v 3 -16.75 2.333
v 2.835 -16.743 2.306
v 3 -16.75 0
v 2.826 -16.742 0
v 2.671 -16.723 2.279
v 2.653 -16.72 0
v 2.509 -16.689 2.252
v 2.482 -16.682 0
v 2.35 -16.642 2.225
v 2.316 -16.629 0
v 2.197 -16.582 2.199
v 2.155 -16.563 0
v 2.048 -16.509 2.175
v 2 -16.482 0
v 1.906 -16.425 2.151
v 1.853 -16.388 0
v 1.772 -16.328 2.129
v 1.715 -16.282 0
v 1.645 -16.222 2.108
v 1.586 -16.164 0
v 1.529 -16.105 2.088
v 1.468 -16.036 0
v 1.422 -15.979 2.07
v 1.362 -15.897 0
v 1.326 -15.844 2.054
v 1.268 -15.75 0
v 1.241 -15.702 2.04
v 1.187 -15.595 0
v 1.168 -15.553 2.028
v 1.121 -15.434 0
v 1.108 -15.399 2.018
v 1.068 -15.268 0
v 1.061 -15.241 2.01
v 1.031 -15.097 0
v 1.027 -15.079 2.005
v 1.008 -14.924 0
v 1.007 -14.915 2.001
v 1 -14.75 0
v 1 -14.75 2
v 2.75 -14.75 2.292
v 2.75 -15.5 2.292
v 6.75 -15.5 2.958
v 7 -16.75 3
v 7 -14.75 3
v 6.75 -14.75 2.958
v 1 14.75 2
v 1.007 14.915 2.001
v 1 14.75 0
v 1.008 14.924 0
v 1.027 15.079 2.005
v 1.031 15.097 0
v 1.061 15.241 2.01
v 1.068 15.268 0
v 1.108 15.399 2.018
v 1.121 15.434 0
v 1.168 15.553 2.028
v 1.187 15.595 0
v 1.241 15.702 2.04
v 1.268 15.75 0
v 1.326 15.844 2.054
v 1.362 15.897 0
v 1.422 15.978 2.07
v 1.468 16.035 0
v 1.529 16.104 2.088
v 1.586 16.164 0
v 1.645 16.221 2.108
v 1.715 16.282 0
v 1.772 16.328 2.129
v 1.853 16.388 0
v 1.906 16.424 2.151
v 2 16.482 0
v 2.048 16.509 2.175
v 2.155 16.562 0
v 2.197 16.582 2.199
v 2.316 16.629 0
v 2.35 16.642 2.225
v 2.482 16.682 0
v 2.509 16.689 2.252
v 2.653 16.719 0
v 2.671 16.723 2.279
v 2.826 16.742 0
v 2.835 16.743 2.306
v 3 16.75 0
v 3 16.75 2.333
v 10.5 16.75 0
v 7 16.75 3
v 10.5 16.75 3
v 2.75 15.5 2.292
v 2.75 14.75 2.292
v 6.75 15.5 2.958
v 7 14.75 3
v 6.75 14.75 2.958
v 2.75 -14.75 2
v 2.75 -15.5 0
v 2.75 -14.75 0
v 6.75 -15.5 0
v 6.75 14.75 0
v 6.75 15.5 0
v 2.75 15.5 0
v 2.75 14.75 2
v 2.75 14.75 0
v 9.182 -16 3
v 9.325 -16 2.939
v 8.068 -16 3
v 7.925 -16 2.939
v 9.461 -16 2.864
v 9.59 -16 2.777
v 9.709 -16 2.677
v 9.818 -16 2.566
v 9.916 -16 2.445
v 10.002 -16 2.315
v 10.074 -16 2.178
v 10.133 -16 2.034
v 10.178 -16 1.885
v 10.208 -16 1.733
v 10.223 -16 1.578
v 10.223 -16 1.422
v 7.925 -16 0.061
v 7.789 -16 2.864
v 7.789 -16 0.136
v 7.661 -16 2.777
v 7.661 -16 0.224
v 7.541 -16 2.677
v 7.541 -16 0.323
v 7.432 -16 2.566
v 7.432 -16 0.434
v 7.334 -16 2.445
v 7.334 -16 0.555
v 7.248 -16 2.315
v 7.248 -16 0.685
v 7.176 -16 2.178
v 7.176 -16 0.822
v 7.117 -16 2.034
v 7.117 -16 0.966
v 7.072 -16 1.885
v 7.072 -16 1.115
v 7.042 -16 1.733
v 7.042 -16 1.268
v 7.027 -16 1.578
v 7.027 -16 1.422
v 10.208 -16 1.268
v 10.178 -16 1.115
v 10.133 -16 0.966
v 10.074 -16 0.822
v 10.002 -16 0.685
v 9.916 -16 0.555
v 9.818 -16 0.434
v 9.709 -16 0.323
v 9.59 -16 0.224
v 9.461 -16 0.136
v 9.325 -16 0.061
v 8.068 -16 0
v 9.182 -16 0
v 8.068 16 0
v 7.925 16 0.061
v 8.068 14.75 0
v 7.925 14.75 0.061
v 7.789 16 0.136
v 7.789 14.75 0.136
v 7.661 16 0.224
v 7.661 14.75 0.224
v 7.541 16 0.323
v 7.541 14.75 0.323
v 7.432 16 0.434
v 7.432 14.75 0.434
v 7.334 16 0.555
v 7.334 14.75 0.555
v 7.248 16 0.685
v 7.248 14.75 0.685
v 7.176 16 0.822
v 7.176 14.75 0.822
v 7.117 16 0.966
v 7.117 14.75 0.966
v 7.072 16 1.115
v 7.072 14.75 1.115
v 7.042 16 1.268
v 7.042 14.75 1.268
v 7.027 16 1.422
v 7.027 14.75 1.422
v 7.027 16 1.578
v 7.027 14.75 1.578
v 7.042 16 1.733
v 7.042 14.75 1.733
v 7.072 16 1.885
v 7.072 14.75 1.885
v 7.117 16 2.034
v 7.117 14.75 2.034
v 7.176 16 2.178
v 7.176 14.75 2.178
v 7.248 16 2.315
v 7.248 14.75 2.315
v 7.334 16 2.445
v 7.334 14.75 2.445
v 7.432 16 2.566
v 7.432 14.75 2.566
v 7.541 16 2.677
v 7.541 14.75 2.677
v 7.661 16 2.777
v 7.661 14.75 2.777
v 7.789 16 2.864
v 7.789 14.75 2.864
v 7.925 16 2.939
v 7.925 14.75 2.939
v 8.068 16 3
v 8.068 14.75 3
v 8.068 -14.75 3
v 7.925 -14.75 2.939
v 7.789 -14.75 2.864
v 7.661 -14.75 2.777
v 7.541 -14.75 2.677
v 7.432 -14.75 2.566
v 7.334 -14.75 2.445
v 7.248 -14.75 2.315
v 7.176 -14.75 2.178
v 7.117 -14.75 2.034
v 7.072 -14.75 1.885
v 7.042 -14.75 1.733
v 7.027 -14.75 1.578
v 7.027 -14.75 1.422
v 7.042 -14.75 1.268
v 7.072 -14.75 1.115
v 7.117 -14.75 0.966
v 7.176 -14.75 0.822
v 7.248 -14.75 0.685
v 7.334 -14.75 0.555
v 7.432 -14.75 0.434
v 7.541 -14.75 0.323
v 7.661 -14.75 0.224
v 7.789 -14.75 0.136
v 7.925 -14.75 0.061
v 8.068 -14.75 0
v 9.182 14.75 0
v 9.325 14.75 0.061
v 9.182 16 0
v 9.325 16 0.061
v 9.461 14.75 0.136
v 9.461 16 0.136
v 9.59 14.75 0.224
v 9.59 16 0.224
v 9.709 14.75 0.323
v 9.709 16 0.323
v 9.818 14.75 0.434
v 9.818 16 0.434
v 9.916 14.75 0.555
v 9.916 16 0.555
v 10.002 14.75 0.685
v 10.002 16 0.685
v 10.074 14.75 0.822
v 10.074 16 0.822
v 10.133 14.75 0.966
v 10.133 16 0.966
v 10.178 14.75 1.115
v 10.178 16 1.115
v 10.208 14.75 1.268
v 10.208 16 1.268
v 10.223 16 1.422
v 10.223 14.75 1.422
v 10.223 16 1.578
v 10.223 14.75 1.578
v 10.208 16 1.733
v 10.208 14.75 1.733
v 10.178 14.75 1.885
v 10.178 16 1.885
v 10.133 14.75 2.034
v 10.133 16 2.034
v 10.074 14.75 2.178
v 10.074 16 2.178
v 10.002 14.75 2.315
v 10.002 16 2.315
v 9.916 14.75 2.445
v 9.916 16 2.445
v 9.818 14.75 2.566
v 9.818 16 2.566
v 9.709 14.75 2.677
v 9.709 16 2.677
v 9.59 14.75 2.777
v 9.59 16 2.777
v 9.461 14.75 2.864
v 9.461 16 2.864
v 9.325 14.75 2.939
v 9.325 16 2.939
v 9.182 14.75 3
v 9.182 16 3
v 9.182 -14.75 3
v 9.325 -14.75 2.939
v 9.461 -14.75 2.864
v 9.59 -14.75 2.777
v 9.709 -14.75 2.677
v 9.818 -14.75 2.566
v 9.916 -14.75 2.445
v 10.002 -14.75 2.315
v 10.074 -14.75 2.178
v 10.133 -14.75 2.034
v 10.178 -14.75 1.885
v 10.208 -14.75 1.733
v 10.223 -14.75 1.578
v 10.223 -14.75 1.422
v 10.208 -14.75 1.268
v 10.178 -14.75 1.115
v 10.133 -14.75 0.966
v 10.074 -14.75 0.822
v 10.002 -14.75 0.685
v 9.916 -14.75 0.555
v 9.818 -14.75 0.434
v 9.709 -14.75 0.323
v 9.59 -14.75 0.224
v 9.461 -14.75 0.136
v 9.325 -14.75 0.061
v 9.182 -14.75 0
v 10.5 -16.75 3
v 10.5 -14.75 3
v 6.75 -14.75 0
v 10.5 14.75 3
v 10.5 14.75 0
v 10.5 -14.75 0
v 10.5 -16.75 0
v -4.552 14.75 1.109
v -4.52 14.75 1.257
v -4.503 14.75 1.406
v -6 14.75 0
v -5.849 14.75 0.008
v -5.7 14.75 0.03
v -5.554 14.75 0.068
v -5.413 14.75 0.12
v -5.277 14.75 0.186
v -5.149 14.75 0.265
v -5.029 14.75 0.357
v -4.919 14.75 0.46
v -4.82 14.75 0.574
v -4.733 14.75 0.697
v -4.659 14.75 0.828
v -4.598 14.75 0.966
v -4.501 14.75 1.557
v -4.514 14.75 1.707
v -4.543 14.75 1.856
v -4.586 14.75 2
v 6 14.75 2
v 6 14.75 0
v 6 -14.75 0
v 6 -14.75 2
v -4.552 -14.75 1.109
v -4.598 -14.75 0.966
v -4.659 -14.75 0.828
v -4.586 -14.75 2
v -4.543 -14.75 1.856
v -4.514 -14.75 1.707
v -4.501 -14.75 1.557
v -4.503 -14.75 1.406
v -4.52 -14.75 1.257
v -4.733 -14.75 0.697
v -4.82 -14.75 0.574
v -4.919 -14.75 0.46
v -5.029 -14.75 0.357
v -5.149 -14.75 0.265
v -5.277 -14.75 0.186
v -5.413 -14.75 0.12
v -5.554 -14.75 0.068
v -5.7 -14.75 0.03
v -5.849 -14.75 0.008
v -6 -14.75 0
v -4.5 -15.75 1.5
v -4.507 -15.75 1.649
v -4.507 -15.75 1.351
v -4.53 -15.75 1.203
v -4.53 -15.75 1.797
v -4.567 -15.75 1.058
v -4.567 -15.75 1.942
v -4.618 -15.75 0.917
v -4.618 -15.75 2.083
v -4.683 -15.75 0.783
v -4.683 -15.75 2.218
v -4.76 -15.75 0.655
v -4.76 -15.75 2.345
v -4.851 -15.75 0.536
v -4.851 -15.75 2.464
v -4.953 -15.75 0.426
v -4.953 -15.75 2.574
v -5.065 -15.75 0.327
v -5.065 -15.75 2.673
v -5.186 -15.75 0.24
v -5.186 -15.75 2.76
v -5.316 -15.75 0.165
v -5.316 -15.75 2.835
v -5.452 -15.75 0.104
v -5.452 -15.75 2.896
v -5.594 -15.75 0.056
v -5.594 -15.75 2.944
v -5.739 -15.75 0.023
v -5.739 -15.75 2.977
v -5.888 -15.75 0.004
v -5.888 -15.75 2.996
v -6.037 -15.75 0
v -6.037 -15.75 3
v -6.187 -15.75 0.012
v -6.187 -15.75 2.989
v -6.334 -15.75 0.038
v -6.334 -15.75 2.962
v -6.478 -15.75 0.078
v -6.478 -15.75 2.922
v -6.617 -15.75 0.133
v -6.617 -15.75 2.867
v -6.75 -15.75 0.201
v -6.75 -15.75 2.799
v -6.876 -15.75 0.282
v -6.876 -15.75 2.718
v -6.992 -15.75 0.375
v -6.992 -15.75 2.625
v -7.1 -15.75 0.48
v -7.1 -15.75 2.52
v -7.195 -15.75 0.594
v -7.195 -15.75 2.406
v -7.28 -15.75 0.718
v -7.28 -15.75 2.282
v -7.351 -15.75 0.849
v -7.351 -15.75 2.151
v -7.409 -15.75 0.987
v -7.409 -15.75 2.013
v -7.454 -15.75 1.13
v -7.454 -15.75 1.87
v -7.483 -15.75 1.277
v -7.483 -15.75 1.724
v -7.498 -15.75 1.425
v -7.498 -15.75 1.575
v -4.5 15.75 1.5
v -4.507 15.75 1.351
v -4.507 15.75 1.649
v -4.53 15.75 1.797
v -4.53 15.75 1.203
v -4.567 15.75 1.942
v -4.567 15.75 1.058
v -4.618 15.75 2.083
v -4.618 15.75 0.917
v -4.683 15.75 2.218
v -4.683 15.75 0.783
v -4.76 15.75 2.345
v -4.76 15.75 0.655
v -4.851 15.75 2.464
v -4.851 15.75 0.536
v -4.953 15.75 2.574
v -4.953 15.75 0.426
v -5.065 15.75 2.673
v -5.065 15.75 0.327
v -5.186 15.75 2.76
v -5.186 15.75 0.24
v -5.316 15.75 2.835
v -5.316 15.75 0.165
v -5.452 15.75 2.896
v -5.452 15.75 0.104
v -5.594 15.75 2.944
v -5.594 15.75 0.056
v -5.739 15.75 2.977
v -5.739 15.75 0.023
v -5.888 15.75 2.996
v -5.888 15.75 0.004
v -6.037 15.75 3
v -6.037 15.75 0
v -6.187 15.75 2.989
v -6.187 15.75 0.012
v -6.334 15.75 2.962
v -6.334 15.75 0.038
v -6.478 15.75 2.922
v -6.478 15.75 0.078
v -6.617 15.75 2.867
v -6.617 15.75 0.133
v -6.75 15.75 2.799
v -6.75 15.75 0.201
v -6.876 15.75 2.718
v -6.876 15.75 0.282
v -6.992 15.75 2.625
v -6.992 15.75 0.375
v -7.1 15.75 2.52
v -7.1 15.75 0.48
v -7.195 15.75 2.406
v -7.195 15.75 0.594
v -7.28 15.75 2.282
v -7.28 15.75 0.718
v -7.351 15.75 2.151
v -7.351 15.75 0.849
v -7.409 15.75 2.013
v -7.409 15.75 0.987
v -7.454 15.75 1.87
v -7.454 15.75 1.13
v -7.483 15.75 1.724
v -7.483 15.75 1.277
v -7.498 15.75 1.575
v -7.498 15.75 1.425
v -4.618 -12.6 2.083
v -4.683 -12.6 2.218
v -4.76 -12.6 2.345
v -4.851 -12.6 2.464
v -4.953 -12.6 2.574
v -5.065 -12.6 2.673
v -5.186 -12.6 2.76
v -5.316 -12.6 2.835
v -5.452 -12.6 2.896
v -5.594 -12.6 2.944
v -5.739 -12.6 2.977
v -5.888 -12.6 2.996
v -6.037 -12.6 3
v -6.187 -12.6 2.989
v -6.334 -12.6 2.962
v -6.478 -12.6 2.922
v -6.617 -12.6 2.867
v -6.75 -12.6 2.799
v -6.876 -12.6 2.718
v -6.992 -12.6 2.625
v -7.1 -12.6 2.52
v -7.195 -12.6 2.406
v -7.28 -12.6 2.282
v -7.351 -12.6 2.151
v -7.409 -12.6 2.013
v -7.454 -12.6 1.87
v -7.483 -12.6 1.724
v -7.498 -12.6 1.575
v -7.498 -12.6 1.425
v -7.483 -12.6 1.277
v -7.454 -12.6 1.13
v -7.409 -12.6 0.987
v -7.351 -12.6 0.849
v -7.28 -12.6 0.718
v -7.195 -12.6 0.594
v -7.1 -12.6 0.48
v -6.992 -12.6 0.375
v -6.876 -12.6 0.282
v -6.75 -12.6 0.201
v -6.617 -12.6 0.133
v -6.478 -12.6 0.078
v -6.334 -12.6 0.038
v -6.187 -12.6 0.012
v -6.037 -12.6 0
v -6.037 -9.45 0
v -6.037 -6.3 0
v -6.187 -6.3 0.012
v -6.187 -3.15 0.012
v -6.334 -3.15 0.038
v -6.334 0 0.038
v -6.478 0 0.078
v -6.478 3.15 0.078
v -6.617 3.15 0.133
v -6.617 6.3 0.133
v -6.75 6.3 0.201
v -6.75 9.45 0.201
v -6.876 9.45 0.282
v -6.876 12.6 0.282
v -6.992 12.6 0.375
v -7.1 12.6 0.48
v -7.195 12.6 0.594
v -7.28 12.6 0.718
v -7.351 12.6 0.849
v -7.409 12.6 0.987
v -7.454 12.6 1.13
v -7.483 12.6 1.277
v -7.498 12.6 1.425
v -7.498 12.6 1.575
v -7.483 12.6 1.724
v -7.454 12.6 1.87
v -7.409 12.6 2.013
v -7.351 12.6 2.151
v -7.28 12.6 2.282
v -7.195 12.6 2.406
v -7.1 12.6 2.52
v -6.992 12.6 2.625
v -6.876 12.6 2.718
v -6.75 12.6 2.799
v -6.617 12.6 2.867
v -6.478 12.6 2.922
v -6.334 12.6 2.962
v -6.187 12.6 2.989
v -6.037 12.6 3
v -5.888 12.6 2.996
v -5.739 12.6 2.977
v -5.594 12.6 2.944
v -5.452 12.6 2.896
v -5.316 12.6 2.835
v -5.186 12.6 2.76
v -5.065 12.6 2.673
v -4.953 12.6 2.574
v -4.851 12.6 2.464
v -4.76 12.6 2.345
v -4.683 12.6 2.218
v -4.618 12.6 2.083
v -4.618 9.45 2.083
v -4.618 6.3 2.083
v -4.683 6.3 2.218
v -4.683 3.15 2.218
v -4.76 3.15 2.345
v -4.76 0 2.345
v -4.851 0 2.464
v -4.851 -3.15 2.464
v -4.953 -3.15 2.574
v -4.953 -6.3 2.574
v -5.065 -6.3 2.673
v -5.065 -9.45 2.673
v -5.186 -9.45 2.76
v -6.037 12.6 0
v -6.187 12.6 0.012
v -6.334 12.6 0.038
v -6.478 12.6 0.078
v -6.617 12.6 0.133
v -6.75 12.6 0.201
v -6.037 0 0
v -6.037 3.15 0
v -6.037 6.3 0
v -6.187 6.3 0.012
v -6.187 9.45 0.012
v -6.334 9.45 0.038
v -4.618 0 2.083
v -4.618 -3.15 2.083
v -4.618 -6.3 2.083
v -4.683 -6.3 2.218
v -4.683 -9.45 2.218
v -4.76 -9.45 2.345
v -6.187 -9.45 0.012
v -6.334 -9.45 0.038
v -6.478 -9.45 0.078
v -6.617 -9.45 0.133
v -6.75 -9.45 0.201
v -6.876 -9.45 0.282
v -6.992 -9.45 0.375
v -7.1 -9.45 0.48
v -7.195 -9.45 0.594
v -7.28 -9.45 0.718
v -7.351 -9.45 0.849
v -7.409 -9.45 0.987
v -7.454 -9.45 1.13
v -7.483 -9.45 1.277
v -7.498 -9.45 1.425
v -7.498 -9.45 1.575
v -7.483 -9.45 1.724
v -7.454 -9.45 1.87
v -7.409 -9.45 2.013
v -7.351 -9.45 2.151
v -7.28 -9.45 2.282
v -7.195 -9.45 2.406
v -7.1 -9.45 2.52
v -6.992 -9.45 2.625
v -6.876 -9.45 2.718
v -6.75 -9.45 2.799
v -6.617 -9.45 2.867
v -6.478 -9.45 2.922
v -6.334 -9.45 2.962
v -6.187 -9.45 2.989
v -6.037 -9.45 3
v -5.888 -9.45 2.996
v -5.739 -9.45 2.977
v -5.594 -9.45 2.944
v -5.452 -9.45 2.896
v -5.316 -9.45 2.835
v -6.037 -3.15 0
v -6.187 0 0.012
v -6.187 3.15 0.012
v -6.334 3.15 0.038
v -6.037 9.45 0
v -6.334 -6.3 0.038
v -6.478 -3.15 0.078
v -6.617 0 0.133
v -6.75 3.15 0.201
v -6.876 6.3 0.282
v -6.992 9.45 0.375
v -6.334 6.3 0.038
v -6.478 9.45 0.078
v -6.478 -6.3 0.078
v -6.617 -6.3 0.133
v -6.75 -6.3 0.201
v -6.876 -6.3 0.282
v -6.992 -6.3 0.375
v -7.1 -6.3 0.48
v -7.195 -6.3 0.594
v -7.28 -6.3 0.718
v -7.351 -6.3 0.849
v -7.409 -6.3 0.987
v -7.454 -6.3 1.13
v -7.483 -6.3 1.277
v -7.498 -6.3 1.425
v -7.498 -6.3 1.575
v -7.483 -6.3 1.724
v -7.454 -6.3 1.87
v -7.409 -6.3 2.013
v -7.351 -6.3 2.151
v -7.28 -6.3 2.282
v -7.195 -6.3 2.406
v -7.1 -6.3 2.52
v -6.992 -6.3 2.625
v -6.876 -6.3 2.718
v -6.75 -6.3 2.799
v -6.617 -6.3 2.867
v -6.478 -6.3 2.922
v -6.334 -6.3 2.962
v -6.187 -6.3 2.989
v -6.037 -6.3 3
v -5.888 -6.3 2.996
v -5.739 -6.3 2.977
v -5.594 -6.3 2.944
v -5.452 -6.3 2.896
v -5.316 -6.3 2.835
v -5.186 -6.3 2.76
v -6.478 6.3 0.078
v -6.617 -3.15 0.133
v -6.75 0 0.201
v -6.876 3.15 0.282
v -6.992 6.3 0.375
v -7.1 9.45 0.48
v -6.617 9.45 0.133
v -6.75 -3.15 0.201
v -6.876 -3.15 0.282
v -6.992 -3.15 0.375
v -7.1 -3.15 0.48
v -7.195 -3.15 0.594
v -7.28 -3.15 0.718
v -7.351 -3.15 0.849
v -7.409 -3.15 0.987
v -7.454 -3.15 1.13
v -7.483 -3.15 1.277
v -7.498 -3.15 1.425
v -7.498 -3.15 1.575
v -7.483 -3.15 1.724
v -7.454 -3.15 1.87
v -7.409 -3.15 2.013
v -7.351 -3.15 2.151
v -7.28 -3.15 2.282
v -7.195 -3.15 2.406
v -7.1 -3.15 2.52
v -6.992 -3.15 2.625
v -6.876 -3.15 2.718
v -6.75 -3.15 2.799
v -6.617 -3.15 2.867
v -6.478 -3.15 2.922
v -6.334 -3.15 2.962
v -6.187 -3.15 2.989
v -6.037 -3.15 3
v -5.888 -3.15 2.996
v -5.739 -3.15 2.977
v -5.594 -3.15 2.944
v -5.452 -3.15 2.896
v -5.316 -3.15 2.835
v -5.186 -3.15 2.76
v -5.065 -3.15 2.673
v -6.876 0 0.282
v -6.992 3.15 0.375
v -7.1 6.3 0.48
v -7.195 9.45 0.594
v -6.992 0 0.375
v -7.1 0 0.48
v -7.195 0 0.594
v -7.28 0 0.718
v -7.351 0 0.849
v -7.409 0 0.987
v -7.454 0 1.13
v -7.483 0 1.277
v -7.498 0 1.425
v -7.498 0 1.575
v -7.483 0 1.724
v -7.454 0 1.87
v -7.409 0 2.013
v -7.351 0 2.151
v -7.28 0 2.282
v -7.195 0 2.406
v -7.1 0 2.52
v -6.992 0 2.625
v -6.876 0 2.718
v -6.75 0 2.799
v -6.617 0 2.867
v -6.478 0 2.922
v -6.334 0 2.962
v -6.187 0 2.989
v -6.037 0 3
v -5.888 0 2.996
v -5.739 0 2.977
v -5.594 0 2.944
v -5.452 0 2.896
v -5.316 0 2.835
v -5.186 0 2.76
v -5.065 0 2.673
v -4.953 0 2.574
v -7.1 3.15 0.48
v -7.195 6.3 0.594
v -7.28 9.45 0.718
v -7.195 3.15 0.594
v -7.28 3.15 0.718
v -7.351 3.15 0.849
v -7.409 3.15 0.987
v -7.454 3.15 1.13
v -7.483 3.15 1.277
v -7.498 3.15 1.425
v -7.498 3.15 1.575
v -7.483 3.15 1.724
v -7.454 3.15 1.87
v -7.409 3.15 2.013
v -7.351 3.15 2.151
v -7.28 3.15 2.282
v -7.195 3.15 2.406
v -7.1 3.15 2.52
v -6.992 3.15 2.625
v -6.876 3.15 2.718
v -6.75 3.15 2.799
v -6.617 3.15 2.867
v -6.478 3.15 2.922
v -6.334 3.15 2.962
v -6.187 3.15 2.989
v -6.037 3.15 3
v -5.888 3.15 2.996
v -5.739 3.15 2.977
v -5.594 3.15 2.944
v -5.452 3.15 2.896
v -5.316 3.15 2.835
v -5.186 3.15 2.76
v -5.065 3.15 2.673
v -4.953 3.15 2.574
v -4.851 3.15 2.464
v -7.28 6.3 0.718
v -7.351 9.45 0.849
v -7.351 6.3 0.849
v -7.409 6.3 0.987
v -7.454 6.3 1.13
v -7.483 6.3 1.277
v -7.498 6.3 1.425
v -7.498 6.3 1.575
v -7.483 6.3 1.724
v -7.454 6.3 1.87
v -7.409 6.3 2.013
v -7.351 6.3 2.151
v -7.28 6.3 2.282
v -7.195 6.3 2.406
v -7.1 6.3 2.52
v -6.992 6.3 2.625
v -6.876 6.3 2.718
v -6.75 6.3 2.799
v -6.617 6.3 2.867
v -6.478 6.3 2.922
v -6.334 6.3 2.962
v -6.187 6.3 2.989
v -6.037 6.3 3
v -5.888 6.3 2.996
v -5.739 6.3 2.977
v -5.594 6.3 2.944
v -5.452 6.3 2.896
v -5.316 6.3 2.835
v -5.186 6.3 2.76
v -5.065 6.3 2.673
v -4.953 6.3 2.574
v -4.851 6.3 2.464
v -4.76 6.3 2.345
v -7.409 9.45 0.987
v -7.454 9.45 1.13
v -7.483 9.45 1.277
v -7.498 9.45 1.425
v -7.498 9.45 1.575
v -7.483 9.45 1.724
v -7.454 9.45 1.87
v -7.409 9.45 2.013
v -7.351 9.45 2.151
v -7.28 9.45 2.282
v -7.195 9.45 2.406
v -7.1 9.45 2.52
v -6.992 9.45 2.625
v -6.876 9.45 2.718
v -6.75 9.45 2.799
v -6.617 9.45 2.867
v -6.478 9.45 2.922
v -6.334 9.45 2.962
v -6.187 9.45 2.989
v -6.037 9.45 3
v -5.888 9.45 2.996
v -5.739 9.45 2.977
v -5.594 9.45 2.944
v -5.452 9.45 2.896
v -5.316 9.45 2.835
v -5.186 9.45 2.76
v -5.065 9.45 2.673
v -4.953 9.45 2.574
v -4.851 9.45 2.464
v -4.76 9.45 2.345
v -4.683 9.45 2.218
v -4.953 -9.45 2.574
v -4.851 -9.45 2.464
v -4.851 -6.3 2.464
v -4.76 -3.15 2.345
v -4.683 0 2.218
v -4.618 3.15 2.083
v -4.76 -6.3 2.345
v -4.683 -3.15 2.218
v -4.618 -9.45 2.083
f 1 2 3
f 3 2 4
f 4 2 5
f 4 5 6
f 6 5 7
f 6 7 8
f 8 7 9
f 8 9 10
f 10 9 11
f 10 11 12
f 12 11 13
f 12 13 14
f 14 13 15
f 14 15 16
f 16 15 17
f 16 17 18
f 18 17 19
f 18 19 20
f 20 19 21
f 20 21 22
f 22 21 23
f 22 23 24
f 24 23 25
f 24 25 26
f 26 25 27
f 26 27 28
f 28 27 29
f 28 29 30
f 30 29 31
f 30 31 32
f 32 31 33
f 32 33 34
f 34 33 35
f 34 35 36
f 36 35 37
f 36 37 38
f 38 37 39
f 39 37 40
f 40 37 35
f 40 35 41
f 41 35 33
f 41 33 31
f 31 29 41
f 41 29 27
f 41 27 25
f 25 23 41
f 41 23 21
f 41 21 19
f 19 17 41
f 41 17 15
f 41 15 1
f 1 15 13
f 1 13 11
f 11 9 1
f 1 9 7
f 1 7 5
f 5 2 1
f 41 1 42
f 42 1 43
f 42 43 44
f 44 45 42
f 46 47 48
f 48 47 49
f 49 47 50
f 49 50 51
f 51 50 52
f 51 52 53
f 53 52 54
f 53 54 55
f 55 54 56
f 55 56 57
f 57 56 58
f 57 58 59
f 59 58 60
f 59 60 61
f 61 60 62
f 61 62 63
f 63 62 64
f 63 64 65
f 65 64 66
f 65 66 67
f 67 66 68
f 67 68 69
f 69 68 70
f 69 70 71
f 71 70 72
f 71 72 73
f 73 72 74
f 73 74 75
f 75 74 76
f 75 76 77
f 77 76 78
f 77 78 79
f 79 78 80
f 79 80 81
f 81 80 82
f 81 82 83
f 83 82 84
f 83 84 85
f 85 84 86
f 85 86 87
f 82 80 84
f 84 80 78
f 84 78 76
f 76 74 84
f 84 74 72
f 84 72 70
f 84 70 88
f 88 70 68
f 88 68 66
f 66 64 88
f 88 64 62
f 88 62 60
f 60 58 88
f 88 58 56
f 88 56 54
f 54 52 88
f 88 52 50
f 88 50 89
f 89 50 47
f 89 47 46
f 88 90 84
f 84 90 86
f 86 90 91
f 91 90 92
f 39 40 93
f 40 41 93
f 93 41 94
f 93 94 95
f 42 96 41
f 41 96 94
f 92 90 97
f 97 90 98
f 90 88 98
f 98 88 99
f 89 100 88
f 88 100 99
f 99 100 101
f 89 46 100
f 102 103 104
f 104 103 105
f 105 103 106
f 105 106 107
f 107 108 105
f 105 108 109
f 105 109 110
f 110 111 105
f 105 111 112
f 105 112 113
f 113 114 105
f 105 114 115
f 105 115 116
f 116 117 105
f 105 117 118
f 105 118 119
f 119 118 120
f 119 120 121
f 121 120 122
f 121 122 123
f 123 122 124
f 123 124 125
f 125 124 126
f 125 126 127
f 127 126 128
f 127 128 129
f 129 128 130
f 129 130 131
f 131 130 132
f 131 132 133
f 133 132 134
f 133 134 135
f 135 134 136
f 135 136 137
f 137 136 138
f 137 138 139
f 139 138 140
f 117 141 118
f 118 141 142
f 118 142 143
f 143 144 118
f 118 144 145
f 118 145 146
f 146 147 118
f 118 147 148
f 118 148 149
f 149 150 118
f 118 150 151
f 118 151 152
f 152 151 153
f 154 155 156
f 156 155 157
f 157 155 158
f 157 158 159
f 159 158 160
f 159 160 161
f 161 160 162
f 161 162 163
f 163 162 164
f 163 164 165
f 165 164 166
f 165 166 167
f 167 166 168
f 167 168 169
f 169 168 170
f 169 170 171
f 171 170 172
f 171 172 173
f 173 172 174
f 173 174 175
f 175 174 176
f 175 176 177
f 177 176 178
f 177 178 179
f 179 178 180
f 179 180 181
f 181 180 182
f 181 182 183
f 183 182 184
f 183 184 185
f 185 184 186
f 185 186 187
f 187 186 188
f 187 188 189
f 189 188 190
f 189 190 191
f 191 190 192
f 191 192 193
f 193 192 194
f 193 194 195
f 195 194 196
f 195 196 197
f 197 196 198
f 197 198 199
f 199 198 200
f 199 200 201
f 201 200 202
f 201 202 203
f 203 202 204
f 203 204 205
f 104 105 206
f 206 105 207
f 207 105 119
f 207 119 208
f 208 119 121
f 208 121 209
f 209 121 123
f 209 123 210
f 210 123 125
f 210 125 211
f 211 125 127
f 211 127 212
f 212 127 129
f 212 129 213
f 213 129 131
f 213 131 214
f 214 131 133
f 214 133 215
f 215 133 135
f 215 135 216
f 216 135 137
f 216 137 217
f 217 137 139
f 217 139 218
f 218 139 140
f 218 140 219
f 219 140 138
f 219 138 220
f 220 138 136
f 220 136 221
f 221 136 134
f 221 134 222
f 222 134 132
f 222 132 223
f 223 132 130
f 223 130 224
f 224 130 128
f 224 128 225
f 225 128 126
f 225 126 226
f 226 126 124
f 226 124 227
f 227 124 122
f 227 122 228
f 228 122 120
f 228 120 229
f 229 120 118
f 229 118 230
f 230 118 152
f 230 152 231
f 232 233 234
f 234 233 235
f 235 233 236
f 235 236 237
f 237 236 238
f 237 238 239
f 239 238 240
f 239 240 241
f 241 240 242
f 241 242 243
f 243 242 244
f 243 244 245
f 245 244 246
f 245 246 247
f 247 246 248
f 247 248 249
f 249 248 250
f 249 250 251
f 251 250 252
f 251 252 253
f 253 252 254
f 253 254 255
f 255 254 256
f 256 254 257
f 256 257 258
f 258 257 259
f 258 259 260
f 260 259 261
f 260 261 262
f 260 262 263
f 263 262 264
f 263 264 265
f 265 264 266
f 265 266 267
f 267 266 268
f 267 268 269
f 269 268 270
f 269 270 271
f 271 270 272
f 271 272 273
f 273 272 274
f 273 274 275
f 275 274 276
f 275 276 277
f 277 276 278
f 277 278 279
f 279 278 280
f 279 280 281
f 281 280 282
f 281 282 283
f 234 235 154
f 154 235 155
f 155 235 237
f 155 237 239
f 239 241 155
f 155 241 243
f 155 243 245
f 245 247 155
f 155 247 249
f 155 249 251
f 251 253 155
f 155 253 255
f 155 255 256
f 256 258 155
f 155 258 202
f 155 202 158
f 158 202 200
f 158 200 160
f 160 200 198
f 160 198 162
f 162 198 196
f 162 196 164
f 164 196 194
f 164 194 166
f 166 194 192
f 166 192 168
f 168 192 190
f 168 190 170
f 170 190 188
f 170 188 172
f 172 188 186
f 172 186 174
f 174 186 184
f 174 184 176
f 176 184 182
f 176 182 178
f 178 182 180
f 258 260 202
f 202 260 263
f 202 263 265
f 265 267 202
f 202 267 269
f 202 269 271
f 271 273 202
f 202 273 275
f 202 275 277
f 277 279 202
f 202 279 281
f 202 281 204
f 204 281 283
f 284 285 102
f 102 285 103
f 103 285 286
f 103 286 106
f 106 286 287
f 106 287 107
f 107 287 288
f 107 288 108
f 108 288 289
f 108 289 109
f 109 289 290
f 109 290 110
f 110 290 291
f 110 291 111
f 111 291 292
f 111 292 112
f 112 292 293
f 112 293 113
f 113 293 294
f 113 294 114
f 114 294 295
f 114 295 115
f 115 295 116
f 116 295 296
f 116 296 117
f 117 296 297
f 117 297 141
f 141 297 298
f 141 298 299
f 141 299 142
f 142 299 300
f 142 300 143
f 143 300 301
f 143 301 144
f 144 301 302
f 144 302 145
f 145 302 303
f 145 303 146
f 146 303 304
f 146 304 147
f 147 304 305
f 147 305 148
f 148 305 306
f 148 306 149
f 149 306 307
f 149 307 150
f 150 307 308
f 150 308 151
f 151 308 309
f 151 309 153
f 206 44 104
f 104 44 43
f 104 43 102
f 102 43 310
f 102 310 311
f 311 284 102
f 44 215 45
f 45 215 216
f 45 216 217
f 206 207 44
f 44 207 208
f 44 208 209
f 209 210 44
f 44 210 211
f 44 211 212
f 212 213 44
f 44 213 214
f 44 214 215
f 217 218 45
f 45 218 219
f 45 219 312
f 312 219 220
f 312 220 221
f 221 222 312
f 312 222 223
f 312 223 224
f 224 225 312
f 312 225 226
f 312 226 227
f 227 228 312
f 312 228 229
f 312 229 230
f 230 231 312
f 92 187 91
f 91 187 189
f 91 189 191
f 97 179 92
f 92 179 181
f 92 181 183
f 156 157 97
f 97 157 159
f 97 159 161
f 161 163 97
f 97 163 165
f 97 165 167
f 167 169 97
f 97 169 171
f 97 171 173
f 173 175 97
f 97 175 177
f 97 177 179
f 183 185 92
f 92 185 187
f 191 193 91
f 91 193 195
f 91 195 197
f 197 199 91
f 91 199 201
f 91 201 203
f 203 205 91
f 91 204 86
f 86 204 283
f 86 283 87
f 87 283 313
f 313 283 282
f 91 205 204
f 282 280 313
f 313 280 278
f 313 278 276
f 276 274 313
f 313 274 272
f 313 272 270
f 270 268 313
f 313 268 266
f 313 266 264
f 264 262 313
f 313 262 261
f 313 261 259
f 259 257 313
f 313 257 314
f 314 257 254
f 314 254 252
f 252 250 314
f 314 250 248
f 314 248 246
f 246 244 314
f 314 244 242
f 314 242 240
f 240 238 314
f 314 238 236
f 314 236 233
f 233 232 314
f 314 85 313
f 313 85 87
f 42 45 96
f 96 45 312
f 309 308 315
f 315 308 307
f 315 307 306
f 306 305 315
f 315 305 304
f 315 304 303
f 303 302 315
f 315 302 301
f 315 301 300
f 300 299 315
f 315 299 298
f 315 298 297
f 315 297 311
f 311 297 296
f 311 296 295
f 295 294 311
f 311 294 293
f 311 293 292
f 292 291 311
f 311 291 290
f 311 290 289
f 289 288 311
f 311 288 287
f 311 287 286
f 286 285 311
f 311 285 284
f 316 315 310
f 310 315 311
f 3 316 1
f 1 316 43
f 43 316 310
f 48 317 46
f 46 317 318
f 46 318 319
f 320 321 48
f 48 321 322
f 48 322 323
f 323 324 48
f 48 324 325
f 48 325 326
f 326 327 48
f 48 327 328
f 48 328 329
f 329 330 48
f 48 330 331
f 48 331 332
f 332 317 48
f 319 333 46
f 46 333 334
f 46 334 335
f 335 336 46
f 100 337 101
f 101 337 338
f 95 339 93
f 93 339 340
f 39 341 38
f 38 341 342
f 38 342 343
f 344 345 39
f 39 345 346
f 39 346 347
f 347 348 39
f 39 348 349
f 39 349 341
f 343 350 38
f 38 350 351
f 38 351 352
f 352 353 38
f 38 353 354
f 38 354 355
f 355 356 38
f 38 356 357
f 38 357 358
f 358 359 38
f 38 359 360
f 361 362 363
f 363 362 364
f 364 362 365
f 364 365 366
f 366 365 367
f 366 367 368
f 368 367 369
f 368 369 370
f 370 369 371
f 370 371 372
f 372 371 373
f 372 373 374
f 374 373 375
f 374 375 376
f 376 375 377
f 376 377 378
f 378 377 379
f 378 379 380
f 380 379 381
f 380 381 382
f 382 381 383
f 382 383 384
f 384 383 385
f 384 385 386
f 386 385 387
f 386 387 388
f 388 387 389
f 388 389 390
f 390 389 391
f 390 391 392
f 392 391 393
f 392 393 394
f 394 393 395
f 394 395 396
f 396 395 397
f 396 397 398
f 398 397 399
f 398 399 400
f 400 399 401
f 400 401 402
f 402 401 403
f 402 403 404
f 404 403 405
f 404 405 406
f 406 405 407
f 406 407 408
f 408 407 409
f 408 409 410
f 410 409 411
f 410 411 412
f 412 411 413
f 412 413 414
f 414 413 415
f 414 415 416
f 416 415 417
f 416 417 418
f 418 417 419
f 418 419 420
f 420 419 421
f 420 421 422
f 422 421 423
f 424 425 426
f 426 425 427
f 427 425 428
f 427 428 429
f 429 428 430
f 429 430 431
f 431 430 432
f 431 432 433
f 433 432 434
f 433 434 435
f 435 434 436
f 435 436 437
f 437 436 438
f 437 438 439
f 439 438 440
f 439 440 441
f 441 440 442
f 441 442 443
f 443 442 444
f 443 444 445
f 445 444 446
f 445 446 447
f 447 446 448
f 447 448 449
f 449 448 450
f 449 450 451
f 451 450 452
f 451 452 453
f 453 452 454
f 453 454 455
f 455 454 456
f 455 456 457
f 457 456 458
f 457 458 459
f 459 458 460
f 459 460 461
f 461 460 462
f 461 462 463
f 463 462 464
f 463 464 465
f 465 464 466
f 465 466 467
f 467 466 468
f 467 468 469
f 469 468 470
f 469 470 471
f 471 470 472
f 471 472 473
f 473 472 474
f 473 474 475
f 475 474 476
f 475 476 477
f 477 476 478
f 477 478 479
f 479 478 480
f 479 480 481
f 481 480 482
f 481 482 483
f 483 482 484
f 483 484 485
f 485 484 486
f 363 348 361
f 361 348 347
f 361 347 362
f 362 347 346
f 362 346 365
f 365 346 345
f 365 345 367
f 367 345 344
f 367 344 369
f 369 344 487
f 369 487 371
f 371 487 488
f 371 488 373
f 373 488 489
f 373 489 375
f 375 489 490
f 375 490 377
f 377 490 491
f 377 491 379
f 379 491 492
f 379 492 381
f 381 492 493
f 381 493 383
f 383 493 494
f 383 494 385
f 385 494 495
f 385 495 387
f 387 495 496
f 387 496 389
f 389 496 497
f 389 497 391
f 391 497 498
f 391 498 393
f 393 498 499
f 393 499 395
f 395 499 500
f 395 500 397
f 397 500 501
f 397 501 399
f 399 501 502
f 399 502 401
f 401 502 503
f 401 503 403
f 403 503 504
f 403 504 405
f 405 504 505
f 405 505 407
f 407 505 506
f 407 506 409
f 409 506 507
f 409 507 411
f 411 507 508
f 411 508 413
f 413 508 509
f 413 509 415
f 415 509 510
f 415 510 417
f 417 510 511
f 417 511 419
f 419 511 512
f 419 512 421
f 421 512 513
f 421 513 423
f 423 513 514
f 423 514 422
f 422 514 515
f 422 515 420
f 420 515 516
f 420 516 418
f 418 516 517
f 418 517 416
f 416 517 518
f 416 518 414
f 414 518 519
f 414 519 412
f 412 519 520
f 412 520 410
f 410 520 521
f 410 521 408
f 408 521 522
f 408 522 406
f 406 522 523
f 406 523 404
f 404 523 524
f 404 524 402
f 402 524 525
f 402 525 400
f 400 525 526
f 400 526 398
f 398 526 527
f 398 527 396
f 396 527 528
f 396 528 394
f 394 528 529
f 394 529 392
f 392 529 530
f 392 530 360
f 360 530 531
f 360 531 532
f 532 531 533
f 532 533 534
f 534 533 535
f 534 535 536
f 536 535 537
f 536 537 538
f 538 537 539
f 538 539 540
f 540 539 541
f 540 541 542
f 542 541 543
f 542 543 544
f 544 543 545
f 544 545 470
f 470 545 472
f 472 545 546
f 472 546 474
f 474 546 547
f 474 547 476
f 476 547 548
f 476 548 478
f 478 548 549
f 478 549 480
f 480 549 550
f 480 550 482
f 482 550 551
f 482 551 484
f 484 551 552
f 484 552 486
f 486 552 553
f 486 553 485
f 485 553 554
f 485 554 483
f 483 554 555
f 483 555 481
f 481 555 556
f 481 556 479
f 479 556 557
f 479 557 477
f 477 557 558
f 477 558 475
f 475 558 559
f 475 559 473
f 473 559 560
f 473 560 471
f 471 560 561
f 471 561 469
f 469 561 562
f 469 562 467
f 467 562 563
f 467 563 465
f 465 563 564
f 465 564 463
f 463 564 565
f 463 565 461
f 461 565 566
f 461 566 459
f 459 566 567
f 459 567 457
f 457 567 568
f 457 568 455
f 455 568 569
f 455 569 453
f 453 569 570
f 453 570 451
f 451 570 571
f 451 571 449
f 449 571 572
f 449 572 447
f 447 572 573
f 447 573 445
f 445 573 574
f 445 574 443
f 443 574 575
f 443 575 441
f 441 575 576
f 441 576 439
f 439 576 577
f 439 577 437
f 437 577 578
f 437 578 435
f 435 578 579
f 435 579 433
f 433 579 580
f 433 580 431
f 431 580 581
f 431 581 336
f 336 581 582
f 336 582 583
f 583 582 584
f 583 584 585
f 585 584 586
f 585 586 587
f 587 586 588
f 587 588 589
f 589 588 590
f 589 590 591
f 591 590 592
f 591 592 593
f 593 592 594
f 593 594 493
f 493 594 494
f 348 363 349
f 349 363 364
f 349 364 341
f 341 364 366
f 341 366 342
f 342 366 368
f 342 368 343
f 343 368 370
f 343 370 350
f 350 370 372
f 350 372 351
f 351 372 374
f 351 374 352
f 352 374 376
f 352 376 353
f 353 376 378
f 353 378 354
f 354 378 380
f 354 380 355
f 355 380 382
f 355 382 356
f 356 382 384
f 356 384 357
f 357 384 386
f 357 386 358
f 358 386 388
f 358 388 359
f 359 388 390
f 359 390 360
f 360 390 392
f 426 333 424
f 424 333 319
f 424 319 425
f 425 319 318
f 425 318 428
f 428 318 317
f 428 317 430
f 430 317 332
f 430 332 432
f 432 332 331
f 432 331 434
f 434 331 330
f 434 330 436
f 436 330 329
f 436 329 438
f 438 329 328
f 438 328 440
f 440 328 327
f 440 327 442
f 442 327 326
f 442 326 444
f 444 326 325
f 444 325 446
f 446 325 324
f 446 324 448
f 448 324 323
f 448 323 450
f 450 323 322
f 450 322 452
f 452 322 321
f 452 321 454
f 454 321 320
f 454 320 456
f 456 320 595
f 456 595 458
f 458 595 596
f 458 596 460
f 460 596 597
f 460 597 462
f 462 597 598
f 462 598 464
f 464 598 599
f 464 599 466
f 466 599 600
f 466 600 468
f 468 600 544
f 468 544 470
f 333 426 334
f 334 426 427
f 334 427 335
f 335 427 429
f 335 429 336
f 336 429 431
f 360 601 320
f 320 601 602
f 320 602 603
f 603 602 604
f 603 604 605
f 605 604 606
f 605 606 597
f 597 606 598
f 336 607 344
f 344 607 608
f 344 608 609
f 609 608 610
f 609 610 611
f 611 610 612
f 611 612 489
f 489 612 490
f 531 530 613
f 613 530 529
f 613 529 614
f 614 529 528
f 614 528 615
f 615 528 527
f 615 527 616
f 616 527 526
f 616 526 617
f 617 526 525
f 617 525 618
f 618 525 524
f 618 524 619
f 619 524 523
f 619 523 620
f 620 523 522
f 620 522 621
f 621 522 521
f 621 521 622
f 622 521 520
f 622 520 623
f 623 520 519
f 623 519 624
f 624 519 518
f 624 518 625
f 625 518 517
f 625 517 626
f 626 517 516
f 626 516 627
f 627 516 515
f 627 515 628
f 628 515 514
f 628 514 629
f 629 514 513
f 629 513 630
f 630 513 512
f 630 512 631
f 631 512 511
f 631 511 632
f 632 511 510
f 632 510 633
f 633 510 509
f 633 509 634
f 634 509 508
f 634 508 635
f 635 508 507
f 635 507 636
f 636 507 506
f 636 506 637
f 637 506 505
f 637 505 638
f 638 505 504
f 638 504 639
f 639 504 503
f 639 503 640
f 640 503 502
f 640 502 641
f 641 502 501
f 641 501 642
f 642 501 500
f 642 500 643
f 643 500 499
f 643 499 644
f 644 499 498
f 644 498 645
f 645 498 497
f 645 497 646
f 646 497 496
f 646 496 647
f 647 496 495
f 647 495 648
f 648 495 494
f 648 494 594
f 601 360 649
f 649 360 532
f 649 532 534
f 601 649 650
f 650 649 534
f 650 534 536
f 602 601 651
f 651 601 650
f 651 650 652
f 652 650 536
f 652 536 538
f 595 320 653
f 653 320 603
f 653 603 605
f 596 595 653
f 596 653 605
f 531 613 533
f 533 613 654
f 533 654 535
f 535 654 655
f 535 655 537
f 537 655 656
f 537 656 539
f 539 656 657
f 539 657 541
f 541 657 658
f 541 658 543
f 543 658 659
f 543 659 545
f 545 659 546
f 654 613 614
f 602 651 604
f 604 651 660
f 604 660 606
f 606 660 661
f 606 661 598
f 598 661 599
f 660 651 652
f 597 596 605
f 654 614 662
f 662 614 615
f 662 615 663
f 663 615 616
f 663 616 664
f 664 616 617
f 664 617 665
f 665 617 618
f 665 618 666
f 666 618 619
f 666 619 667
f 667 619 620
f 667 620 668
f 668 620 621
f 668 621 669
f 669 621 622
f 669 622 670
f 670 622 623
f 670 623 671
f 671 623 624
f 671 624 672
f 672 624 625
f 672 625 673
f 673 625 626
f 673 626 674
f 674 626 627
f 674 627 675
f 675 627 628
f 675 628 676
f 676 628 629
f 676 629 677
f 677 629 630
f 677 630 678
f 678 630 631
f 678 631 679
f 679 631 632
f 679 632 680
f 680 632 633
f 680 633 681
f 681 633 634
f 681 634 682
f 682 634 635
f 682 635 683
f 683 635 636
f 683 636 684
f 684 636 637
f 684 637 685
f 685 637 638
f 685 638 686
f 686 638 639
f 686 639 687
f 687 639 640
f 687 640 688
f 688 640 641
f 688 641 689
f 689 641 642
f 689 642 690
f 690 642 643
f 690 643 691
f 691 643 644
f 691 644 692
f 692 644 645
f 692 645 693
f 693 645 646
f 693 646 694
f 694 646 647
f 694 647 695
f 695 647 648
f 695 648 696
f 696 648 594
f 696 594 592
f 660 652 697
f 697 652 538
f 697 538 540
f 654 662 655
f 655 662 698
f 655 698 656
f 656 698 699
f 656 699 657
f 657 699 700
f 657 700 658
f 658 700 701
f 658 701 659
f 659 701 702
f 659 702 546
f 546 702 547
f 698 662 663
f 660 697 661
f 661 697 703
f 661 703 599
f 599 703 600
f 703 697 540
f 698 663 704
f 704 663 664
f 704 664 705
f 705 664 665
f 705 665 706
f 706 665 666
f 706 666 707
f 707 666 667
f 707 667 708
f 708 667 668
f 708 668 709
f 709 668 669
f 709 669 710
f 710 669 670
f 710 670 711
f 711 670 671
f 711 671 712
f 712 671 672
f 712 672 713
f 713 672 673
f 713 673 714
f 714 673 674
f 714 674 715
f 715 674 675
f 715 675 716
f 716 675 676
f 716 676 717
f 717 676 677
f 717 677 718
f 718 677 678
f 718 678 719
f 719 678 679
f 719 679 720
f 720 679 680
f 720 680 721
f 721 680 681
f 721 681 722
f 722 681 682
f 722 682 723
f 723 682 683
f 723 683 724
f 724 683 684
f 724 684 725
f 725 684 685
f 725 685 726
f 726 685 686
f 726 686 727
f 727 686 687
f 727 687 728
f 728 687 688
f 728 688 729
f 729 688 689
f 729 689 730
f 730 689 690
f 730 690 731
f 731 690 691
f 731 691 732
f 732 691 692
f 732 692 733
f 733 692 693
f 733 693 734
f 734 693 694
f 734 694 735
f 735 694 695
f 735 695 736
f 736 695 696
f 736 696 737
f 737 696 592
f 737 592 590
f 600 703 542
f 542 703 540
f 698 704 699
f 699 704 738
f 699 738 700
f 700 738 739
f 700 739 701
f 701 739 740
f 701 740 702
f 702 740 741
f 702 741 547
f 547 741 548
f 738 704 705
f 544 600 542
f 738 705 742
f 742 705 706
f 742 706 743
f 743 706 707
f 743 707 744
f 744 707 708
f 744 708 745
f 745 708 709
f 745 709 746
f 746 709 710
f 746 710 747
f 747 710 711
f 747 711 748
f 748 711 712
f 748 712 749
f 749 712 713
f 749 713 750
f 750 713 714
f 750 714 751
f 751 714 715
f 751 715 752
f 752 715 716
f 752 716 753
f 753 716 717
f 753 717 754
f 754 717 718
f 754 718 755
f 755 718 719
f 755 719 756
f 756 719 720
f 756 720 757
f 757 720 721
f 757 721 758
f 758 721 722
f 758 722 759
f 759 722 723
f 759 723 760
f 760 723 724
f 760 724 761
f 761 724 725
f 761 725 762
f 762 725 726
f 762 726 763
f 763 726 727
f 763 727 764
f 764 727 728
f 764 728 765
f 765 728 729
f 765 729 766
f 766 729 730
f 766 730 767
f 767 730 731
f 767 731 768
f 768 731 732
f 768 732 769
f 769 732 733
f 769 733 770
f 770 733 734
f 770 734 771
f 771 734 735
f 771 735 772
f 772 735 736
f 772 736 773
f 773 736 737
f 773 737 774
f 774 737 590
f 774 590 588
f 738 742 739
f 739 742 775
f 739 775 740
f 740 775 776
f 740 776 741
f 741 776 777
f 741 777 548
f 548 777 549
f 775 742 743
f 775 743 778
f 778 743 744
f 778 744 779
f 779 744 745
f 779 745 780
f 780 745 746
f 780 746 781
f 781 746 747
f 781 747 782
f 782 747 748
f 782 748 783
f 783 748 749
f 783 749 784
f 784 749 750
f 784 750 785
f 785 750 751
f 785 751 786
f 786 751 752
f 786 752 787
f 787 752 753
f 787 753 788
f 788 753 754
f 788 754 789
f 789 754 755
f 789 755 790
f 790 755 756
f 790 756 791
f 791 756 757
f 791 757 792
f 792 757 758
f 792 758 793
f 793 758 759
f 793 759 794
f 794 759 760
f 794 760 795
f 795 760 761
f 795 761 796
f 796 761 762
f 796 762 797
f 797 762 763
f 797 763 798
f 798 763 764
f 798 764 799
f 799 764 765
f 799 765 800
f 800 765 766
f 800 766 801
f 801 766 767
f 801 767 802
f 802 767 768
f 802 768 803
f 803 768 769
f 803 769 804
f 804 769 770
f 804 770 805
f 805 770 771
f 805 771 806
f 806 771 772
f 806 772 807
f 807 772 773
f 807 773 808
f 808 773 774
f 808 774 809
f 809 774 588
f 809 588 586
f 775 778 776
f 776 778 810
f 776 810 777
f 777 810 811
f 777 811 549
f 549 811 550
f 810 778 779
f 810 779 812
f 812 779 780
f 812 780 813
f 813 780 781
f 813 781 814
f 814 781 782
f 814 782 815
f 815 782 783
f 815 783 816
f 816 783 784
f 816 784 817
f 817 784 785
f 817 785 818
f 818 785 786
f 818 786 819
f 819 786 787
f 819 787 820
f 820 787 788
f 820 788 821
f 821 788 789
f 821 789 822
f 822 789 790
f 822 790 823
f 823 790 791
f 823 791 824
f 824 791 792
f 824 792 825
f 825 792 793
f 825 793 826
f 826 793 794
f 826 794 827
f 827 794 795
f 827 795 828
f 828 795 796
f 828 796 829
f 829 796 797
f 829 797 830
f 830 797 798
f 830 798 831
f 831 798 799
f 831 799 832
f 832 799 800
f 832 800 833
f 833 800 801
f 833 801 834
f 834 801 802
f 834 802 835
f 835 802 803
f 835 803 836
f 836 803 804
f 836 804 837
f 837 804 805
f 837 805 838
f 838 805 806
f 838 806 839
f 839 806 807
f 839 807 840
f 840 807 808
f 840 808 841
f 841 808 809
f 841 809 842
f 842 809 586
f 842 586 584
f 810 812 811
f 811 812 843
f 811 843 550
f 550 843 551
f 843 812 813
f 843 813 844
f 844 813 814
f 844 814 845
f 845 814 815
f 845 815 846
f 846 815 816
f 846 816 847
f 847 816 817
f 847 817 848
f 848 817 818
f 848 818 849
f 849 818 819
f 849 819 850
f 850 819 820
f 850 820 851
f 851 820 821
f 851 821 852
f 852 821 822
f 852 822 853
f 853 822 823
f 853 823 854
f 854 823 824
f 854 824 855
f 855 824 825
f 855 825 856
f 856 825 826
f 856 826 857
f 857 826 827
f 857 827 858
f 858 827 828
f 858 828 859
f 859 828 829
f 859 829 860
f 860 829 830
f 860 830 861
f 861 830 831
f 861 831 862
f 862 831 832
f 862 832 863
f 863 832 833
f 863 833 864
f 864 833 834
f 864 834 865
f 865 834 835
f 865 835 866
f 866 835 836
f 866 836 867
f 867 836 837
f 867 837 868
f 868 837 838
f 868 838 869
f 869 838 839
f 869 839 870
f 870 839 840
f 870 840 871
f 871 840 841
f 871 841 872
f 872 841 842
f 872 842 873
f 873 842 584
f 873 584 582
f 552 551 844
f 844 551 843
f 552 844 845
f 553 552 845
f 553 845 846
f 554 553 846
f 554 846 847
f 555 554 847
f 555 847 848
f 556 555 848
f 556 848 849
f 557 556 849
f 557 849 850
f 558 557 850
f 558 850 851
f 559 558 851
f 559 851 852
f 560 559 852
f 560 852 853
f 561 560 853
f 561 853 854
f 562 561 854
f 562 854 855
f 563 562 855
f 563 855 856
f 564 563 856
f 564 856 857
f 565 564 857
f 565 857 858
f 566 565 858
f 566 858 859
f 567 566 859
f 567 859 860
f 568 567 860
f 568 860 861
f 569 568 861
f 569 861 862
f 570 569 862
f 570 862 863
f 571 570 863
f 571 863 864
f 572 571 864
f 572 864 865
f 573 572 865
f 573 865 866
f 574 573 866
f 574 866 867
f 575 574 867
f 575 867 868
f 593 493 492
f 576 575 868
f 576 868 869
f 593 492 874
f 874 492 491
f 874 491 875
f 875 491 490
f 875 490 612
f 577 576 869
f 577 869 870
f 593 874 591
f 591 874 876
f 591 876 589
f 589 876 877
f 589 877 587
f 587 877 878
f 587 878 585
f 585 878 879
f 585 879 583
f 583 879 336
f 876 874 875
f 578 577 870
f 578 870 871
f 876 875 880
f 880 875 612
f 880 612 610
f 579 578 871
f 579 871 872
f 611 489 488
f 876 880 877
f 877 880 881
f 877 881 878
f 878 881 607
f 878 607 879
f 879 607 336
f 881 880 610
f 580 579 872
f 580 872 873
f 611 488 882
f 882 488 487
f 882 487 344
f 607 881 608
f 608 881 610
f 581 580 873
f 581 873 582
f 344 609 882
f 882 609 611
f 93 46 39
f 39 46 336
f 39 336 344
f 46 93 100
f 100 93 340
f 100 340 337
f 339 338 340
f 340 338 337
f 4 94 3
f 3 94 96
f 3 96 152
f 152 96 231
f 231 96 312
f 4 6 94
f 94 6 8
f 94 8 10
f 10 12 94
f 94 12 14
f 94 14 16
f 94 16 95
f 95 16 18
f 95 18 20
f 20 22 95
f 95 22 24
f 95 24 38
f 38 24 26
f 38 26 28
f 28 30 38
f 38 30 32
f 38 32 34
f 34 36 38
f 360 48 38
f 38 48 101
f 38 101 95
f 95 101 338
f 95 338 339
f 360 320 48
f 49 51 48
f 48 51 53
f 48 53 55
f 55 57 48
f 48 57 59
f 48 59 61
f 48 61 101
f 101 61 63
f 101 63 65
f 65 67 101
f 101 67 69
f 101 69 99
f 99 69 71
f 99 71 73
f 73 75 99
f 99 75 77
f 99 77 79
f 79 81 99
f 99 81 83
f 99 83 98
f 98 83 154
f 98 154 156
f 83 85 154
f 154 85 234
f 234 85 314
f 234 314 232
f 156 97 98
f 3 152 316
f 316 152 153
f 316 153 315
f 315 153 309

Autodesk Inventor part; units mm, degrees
ref_plane "YZ Plane" through (0, 0, 0) normal (1, 0, 0) x (0, 1, 0)
ref_plane "XZ Plane" through (0, 0, 0) normal (0, 1, 0) x (-1, 0, 0)
ref_plane "XY Plane" through (0, 0, 0) normal (0, 0, 1) x (1, 0, 0)
sketch "Sketch1" plane through (0, 0, 0) normal (0, 0, 1) x (1, 0, 0)
  line L0 (-8.4, 0) -> (8.4, 0) construction
  line L1 (0, -20.65) -> (0, 20.65) construction
  line L2 (6, -14.75) -> (-6, -14.75)
  line L3 (-6, -14.75) -> (-6, 14.75)
  line L4 (-6, 14.75) -> (6, 14.75)
  line L5 (6, 14.75) -> (6, -14.75)
  line L6 (6, -14.75) -> (-6, 14.75) construction
  line L7 (-6, -14.75) -> (6, 14.75) construction
  point P0 (0, 0)
  dimension "d0" = 12
  dimension "d1" = 29.5
extrude "Extrusion1" add sketch "Sketch1" along normal blind 2
sketch "Sketch3" plane through (-6, 14.75, 2) normal (0, 1, 0) x (1, 0, 0)
  line L0 (0, 2) -> (12, 2) construction
  line L1 (0, 2) -> (0, 0) construction
  line L2 (12, 0) -> (0, 0) construction
  circle A0 centre (0, 0.5) radius 1.5
  line L3 (12, 2) -> (12, 0) projected
  point P0 (6, 2)
  dimension "d7" = 3
extrude "Extrusion3" add sketch "Sketch3" against normal up to surface (29.5 mm away)
sketch "Sketch5" plane through (6, 14.75, 2) normal (0, 1, 0) x (1, 0, 0)
  arc A0 (-12, 2) -> (-10.5858, 0) centre (-12, 0.5) ccw construction
  line L0 (0, 0) -> (-10.5858, 0) construction
  line L1 (0, 2) -> (0, 0) construction
  line L2 (-12, 2) -> (0, 2) construction
  circle A1 centre (-12, 0.5) radius 1.5
  point P0 (-6, 2)
extrude "Extrusion5" add sketch "Sketch5" along normal blind 1
mirror "Mirror3" about plane through (0, 0, 0) normal (0, 1, 0) of "Extrusion5"
sketch "Sketch6" plane through (0, 0, 2) normal (0, 0, 1) x (1, 0, 0)
  line L0 (-4.5858, 14.75) -> (-4.5858, -14.75) construction
  line L1 (-4.5858, -14.75) -> (6, -14.75) construction
  line L2 (6, -14.75) -> (6, 14.75) construction
  line L3 (6, 14.75) -> (-4.5858, 14.75) construction
  line L4 (-9.1, 0) -> (12.6, 0) construction
  line L5 (-6, 14.75) -> (6, 14.75) projected
  line L6 (1, 14.75) -> (1, 16.75)
  line L7 (1, 16.75) -> (10.5, 16.75)
  line L8 (2.75, 15.5) -> (2.75, 14.75)
  line L9 (1, 14.75) -> (2.75, 14.75)
  line L10 (2.75, 15.5) -> (6.75, 15.5)
  line L11 (6.75, 15.5) -> (6.75, 14.75)
  line L12 (6.75, 14.75) -> (10.5, 14.75)
  line L13 (10.5, 16.75) -> (10.5, 14.75)
  line L14 (6, 14.75) -> (-4.5858, 14.75) projected
  line L15 (1, -14.75) -> (1, -16.75)
  line L16 (1, -16.75) -> (10.5, -16.75)
  line L17 (2.75, -15.5) -> (2.75, -14.75)
  line L18 (1, -14.75) -> (2.75, -14.75)
  line L19 (2.75, -15.5) -> (6.75, -15.5)
  line L20 (6.75, -15.5) -> (6.75, -14.75)
  line L21 (6.75, -14.75) -> (10.5, -14.75)
  line L22 (10.5, -16.75) -> (10.5, -14.75)
  line L23 (0, 14.75) -> (0, 17.3845) construction
  point P0 (0, 0)
  dimension "d14" = 2
  dimension "d15" = 0.75
  dimension "d16" = 0.75
  dimension "d17" = 1.75
  dimension "d18" = 4.5
  dimension "d40" = 1
extrude "Extrusion6" add sketch "Sketch6" against normal up to surface (2 mm away)
sketch "Skizze9" plane through (0, 0, 2) normal (0, 0, 1) x (1, 0, 0)
  line L0 (-4.5858, 14.75) -> (-4.5858, -14.75) construction
  line L1 (-4.5858, -14.75) -> (1, -14.75) construction
  line L2 (1, -14.75) -> (1, -16.75) construction
  line L3 (1, -16.75) -> (10.5, -16.75) construction
  line L4 (10.5, -16.75) -> (10.5, -14.75) construction
  line L5 (10.5, -14.75) -> (6.75, -14.75) construction
  line L6 (6.75, -14.75) -> (6.75, -15.5) construction
  line L7 (6.75, -15.5) -> (2.75, -15.5) construction
  line L8 (2.75, -15.5) -> (2.75, -14.75) construction
  line L9 (2.75, -14.75) -> (6, -14.75) construction
  line L10 (6, -14.75) -> (6, 14.75) construction
  line L11 (6, 14.75) -> (2.75, 14.75) construction
  line L12 (2.75, 14.75) -> (2.75, 15.5) construction
  line L13 (2.75, 15.5) -> (6.75, 15.5) construction
  line L14 (6.75, 15.5) -> (6.75, 14.75) construction
  line L15 (6.75, 14.75) -> (10.5, 14.75) construction
  line L16 (10.5, 14.75) -> (10.5, 16.75) construction
  line L17 (10.5, 16.75) -> (1, 16.75) construction
  line L18 (1, 16.75) -> (1, 14.75) construction
  line L19 (1, 14.75) -> (-4.5858, 14.75) construction
  line L20 (1, 14.75) -> (-4.5858, 14.75) projected
  line L21 (1, 16.75) -> (1, 14.75) projected
  line L22 (1, 14.75) -> (1, 16.75)
  line L23 (1, 16.75) -> (10.5, 16.75)
  line L24 (10.5, 14.75) -> (10.5, 16.75) projected
  line L25 (10.5, 16.75) -> (10.5, 14.75)
  line L26 (10.5, 14.75) -> (6.75, 14.75)
  line L27 (6.75, 15.5) -> (6.75, 14.75) projected
  line L28 (6.75, 14.75) -> (6.75, 15.5)
  line L29 (6.75, 15.5) -> (2.75, 15.5) projected
  line L30 (6.75, 15.5) -> (2.75, 15.5)
  line L31 (2.75, 14.75) -> (2.75, 15.5) projected
  line L32 (2.75, 15.5) -> (2.75, 14.75)
  line L33 (2.75, 14.75) -> (1, 14.75)
  line L34 (1, -16.75) -> (1, -14.75) projected
  line L35 (1, -14.75) -> (1, -16.75)
  line L36 (1, -16.75) -> (10.5, -16.75)
  line L37 (10.5, -16.75) -> (10.5, -14.75) projected
  line L38 (10.5, -16.75) -> (10.5, -14.75)
  line L39 (10.5, -14.75) -> (6.75, -14.75)
  line L40 (6.75, -14.75) -> (6.75, -15.5) projected
  line L41 (6.75, -14.75) -> (6.75, -15.5)
  line L42 (6.75, -15.5) -> (2.75, -15.5)
  line L43 (2.75, -15.5) -> (2.75, -14.75)
  line L44 (2.75, -14.75) -> (1, -14.75)
  point P0 (0, 0)
extrude "Extrusion9" add sketch "Skizze9" along normal blind 1
sketch "Skizze10" plane through (0, 0, 0) normal (0, 1, 0) x (-1, 0, 0)
  line L0 (-10.5, 0) -> (-1, 0) construction
  line L1 (-10.5, 0) -> (-10.5, 3) construction
  line L2 (-1, 3) -> (-10.5, 3) construction
  line L3 (-1, 0) -> (-1, 3) construction
  line L4 (-10.5, 0) -> (-6.75, 0) construction
  line L5 (-10.5, 0) -> (-10.5, 3) construction
  line L6 (-6.75, 3) -> (-10.5, 3) construction
  line L7 (-6.75, 0) -> (-6.75, 3) construction
  line L8 (-6.75, 1.5) -> (-10.5, 1.5) construction
  line L9 (-10.5, 3) -> (-1, 3) construction
  line L10 (-10.5, 0) -> (-6.75, 0) construction
  line L11 (-8.625, 0) -> (-8.625, 3) construction
  line L12 (-6.75, 3) -> (-10.5, 3) construction
  circle A0 centre (-8.625, 1.5) radius 1.6
  point P0 (0, 0)
  dimension "d32" = 3.2
extrude "Extrusion10" cut sketch "Skizze10" along normal mid plane 32
chamfer "Fase1" distance 6 distance2 1 1 edges at (1, 15.75, 3) measured on face at (6.5227, 16.5, 3)
chamfer "Fase2" distance 6 distance2 1 1 edges at (1, -15.75, 3) measured on face at (6.5227, -16.5, 3)
fillet "Rundung1" radius 2 2 edges at (1, 16.75, 1) (1, -16.75, 1)
properties part number "20_Rect_Aperture_door_hinge"
